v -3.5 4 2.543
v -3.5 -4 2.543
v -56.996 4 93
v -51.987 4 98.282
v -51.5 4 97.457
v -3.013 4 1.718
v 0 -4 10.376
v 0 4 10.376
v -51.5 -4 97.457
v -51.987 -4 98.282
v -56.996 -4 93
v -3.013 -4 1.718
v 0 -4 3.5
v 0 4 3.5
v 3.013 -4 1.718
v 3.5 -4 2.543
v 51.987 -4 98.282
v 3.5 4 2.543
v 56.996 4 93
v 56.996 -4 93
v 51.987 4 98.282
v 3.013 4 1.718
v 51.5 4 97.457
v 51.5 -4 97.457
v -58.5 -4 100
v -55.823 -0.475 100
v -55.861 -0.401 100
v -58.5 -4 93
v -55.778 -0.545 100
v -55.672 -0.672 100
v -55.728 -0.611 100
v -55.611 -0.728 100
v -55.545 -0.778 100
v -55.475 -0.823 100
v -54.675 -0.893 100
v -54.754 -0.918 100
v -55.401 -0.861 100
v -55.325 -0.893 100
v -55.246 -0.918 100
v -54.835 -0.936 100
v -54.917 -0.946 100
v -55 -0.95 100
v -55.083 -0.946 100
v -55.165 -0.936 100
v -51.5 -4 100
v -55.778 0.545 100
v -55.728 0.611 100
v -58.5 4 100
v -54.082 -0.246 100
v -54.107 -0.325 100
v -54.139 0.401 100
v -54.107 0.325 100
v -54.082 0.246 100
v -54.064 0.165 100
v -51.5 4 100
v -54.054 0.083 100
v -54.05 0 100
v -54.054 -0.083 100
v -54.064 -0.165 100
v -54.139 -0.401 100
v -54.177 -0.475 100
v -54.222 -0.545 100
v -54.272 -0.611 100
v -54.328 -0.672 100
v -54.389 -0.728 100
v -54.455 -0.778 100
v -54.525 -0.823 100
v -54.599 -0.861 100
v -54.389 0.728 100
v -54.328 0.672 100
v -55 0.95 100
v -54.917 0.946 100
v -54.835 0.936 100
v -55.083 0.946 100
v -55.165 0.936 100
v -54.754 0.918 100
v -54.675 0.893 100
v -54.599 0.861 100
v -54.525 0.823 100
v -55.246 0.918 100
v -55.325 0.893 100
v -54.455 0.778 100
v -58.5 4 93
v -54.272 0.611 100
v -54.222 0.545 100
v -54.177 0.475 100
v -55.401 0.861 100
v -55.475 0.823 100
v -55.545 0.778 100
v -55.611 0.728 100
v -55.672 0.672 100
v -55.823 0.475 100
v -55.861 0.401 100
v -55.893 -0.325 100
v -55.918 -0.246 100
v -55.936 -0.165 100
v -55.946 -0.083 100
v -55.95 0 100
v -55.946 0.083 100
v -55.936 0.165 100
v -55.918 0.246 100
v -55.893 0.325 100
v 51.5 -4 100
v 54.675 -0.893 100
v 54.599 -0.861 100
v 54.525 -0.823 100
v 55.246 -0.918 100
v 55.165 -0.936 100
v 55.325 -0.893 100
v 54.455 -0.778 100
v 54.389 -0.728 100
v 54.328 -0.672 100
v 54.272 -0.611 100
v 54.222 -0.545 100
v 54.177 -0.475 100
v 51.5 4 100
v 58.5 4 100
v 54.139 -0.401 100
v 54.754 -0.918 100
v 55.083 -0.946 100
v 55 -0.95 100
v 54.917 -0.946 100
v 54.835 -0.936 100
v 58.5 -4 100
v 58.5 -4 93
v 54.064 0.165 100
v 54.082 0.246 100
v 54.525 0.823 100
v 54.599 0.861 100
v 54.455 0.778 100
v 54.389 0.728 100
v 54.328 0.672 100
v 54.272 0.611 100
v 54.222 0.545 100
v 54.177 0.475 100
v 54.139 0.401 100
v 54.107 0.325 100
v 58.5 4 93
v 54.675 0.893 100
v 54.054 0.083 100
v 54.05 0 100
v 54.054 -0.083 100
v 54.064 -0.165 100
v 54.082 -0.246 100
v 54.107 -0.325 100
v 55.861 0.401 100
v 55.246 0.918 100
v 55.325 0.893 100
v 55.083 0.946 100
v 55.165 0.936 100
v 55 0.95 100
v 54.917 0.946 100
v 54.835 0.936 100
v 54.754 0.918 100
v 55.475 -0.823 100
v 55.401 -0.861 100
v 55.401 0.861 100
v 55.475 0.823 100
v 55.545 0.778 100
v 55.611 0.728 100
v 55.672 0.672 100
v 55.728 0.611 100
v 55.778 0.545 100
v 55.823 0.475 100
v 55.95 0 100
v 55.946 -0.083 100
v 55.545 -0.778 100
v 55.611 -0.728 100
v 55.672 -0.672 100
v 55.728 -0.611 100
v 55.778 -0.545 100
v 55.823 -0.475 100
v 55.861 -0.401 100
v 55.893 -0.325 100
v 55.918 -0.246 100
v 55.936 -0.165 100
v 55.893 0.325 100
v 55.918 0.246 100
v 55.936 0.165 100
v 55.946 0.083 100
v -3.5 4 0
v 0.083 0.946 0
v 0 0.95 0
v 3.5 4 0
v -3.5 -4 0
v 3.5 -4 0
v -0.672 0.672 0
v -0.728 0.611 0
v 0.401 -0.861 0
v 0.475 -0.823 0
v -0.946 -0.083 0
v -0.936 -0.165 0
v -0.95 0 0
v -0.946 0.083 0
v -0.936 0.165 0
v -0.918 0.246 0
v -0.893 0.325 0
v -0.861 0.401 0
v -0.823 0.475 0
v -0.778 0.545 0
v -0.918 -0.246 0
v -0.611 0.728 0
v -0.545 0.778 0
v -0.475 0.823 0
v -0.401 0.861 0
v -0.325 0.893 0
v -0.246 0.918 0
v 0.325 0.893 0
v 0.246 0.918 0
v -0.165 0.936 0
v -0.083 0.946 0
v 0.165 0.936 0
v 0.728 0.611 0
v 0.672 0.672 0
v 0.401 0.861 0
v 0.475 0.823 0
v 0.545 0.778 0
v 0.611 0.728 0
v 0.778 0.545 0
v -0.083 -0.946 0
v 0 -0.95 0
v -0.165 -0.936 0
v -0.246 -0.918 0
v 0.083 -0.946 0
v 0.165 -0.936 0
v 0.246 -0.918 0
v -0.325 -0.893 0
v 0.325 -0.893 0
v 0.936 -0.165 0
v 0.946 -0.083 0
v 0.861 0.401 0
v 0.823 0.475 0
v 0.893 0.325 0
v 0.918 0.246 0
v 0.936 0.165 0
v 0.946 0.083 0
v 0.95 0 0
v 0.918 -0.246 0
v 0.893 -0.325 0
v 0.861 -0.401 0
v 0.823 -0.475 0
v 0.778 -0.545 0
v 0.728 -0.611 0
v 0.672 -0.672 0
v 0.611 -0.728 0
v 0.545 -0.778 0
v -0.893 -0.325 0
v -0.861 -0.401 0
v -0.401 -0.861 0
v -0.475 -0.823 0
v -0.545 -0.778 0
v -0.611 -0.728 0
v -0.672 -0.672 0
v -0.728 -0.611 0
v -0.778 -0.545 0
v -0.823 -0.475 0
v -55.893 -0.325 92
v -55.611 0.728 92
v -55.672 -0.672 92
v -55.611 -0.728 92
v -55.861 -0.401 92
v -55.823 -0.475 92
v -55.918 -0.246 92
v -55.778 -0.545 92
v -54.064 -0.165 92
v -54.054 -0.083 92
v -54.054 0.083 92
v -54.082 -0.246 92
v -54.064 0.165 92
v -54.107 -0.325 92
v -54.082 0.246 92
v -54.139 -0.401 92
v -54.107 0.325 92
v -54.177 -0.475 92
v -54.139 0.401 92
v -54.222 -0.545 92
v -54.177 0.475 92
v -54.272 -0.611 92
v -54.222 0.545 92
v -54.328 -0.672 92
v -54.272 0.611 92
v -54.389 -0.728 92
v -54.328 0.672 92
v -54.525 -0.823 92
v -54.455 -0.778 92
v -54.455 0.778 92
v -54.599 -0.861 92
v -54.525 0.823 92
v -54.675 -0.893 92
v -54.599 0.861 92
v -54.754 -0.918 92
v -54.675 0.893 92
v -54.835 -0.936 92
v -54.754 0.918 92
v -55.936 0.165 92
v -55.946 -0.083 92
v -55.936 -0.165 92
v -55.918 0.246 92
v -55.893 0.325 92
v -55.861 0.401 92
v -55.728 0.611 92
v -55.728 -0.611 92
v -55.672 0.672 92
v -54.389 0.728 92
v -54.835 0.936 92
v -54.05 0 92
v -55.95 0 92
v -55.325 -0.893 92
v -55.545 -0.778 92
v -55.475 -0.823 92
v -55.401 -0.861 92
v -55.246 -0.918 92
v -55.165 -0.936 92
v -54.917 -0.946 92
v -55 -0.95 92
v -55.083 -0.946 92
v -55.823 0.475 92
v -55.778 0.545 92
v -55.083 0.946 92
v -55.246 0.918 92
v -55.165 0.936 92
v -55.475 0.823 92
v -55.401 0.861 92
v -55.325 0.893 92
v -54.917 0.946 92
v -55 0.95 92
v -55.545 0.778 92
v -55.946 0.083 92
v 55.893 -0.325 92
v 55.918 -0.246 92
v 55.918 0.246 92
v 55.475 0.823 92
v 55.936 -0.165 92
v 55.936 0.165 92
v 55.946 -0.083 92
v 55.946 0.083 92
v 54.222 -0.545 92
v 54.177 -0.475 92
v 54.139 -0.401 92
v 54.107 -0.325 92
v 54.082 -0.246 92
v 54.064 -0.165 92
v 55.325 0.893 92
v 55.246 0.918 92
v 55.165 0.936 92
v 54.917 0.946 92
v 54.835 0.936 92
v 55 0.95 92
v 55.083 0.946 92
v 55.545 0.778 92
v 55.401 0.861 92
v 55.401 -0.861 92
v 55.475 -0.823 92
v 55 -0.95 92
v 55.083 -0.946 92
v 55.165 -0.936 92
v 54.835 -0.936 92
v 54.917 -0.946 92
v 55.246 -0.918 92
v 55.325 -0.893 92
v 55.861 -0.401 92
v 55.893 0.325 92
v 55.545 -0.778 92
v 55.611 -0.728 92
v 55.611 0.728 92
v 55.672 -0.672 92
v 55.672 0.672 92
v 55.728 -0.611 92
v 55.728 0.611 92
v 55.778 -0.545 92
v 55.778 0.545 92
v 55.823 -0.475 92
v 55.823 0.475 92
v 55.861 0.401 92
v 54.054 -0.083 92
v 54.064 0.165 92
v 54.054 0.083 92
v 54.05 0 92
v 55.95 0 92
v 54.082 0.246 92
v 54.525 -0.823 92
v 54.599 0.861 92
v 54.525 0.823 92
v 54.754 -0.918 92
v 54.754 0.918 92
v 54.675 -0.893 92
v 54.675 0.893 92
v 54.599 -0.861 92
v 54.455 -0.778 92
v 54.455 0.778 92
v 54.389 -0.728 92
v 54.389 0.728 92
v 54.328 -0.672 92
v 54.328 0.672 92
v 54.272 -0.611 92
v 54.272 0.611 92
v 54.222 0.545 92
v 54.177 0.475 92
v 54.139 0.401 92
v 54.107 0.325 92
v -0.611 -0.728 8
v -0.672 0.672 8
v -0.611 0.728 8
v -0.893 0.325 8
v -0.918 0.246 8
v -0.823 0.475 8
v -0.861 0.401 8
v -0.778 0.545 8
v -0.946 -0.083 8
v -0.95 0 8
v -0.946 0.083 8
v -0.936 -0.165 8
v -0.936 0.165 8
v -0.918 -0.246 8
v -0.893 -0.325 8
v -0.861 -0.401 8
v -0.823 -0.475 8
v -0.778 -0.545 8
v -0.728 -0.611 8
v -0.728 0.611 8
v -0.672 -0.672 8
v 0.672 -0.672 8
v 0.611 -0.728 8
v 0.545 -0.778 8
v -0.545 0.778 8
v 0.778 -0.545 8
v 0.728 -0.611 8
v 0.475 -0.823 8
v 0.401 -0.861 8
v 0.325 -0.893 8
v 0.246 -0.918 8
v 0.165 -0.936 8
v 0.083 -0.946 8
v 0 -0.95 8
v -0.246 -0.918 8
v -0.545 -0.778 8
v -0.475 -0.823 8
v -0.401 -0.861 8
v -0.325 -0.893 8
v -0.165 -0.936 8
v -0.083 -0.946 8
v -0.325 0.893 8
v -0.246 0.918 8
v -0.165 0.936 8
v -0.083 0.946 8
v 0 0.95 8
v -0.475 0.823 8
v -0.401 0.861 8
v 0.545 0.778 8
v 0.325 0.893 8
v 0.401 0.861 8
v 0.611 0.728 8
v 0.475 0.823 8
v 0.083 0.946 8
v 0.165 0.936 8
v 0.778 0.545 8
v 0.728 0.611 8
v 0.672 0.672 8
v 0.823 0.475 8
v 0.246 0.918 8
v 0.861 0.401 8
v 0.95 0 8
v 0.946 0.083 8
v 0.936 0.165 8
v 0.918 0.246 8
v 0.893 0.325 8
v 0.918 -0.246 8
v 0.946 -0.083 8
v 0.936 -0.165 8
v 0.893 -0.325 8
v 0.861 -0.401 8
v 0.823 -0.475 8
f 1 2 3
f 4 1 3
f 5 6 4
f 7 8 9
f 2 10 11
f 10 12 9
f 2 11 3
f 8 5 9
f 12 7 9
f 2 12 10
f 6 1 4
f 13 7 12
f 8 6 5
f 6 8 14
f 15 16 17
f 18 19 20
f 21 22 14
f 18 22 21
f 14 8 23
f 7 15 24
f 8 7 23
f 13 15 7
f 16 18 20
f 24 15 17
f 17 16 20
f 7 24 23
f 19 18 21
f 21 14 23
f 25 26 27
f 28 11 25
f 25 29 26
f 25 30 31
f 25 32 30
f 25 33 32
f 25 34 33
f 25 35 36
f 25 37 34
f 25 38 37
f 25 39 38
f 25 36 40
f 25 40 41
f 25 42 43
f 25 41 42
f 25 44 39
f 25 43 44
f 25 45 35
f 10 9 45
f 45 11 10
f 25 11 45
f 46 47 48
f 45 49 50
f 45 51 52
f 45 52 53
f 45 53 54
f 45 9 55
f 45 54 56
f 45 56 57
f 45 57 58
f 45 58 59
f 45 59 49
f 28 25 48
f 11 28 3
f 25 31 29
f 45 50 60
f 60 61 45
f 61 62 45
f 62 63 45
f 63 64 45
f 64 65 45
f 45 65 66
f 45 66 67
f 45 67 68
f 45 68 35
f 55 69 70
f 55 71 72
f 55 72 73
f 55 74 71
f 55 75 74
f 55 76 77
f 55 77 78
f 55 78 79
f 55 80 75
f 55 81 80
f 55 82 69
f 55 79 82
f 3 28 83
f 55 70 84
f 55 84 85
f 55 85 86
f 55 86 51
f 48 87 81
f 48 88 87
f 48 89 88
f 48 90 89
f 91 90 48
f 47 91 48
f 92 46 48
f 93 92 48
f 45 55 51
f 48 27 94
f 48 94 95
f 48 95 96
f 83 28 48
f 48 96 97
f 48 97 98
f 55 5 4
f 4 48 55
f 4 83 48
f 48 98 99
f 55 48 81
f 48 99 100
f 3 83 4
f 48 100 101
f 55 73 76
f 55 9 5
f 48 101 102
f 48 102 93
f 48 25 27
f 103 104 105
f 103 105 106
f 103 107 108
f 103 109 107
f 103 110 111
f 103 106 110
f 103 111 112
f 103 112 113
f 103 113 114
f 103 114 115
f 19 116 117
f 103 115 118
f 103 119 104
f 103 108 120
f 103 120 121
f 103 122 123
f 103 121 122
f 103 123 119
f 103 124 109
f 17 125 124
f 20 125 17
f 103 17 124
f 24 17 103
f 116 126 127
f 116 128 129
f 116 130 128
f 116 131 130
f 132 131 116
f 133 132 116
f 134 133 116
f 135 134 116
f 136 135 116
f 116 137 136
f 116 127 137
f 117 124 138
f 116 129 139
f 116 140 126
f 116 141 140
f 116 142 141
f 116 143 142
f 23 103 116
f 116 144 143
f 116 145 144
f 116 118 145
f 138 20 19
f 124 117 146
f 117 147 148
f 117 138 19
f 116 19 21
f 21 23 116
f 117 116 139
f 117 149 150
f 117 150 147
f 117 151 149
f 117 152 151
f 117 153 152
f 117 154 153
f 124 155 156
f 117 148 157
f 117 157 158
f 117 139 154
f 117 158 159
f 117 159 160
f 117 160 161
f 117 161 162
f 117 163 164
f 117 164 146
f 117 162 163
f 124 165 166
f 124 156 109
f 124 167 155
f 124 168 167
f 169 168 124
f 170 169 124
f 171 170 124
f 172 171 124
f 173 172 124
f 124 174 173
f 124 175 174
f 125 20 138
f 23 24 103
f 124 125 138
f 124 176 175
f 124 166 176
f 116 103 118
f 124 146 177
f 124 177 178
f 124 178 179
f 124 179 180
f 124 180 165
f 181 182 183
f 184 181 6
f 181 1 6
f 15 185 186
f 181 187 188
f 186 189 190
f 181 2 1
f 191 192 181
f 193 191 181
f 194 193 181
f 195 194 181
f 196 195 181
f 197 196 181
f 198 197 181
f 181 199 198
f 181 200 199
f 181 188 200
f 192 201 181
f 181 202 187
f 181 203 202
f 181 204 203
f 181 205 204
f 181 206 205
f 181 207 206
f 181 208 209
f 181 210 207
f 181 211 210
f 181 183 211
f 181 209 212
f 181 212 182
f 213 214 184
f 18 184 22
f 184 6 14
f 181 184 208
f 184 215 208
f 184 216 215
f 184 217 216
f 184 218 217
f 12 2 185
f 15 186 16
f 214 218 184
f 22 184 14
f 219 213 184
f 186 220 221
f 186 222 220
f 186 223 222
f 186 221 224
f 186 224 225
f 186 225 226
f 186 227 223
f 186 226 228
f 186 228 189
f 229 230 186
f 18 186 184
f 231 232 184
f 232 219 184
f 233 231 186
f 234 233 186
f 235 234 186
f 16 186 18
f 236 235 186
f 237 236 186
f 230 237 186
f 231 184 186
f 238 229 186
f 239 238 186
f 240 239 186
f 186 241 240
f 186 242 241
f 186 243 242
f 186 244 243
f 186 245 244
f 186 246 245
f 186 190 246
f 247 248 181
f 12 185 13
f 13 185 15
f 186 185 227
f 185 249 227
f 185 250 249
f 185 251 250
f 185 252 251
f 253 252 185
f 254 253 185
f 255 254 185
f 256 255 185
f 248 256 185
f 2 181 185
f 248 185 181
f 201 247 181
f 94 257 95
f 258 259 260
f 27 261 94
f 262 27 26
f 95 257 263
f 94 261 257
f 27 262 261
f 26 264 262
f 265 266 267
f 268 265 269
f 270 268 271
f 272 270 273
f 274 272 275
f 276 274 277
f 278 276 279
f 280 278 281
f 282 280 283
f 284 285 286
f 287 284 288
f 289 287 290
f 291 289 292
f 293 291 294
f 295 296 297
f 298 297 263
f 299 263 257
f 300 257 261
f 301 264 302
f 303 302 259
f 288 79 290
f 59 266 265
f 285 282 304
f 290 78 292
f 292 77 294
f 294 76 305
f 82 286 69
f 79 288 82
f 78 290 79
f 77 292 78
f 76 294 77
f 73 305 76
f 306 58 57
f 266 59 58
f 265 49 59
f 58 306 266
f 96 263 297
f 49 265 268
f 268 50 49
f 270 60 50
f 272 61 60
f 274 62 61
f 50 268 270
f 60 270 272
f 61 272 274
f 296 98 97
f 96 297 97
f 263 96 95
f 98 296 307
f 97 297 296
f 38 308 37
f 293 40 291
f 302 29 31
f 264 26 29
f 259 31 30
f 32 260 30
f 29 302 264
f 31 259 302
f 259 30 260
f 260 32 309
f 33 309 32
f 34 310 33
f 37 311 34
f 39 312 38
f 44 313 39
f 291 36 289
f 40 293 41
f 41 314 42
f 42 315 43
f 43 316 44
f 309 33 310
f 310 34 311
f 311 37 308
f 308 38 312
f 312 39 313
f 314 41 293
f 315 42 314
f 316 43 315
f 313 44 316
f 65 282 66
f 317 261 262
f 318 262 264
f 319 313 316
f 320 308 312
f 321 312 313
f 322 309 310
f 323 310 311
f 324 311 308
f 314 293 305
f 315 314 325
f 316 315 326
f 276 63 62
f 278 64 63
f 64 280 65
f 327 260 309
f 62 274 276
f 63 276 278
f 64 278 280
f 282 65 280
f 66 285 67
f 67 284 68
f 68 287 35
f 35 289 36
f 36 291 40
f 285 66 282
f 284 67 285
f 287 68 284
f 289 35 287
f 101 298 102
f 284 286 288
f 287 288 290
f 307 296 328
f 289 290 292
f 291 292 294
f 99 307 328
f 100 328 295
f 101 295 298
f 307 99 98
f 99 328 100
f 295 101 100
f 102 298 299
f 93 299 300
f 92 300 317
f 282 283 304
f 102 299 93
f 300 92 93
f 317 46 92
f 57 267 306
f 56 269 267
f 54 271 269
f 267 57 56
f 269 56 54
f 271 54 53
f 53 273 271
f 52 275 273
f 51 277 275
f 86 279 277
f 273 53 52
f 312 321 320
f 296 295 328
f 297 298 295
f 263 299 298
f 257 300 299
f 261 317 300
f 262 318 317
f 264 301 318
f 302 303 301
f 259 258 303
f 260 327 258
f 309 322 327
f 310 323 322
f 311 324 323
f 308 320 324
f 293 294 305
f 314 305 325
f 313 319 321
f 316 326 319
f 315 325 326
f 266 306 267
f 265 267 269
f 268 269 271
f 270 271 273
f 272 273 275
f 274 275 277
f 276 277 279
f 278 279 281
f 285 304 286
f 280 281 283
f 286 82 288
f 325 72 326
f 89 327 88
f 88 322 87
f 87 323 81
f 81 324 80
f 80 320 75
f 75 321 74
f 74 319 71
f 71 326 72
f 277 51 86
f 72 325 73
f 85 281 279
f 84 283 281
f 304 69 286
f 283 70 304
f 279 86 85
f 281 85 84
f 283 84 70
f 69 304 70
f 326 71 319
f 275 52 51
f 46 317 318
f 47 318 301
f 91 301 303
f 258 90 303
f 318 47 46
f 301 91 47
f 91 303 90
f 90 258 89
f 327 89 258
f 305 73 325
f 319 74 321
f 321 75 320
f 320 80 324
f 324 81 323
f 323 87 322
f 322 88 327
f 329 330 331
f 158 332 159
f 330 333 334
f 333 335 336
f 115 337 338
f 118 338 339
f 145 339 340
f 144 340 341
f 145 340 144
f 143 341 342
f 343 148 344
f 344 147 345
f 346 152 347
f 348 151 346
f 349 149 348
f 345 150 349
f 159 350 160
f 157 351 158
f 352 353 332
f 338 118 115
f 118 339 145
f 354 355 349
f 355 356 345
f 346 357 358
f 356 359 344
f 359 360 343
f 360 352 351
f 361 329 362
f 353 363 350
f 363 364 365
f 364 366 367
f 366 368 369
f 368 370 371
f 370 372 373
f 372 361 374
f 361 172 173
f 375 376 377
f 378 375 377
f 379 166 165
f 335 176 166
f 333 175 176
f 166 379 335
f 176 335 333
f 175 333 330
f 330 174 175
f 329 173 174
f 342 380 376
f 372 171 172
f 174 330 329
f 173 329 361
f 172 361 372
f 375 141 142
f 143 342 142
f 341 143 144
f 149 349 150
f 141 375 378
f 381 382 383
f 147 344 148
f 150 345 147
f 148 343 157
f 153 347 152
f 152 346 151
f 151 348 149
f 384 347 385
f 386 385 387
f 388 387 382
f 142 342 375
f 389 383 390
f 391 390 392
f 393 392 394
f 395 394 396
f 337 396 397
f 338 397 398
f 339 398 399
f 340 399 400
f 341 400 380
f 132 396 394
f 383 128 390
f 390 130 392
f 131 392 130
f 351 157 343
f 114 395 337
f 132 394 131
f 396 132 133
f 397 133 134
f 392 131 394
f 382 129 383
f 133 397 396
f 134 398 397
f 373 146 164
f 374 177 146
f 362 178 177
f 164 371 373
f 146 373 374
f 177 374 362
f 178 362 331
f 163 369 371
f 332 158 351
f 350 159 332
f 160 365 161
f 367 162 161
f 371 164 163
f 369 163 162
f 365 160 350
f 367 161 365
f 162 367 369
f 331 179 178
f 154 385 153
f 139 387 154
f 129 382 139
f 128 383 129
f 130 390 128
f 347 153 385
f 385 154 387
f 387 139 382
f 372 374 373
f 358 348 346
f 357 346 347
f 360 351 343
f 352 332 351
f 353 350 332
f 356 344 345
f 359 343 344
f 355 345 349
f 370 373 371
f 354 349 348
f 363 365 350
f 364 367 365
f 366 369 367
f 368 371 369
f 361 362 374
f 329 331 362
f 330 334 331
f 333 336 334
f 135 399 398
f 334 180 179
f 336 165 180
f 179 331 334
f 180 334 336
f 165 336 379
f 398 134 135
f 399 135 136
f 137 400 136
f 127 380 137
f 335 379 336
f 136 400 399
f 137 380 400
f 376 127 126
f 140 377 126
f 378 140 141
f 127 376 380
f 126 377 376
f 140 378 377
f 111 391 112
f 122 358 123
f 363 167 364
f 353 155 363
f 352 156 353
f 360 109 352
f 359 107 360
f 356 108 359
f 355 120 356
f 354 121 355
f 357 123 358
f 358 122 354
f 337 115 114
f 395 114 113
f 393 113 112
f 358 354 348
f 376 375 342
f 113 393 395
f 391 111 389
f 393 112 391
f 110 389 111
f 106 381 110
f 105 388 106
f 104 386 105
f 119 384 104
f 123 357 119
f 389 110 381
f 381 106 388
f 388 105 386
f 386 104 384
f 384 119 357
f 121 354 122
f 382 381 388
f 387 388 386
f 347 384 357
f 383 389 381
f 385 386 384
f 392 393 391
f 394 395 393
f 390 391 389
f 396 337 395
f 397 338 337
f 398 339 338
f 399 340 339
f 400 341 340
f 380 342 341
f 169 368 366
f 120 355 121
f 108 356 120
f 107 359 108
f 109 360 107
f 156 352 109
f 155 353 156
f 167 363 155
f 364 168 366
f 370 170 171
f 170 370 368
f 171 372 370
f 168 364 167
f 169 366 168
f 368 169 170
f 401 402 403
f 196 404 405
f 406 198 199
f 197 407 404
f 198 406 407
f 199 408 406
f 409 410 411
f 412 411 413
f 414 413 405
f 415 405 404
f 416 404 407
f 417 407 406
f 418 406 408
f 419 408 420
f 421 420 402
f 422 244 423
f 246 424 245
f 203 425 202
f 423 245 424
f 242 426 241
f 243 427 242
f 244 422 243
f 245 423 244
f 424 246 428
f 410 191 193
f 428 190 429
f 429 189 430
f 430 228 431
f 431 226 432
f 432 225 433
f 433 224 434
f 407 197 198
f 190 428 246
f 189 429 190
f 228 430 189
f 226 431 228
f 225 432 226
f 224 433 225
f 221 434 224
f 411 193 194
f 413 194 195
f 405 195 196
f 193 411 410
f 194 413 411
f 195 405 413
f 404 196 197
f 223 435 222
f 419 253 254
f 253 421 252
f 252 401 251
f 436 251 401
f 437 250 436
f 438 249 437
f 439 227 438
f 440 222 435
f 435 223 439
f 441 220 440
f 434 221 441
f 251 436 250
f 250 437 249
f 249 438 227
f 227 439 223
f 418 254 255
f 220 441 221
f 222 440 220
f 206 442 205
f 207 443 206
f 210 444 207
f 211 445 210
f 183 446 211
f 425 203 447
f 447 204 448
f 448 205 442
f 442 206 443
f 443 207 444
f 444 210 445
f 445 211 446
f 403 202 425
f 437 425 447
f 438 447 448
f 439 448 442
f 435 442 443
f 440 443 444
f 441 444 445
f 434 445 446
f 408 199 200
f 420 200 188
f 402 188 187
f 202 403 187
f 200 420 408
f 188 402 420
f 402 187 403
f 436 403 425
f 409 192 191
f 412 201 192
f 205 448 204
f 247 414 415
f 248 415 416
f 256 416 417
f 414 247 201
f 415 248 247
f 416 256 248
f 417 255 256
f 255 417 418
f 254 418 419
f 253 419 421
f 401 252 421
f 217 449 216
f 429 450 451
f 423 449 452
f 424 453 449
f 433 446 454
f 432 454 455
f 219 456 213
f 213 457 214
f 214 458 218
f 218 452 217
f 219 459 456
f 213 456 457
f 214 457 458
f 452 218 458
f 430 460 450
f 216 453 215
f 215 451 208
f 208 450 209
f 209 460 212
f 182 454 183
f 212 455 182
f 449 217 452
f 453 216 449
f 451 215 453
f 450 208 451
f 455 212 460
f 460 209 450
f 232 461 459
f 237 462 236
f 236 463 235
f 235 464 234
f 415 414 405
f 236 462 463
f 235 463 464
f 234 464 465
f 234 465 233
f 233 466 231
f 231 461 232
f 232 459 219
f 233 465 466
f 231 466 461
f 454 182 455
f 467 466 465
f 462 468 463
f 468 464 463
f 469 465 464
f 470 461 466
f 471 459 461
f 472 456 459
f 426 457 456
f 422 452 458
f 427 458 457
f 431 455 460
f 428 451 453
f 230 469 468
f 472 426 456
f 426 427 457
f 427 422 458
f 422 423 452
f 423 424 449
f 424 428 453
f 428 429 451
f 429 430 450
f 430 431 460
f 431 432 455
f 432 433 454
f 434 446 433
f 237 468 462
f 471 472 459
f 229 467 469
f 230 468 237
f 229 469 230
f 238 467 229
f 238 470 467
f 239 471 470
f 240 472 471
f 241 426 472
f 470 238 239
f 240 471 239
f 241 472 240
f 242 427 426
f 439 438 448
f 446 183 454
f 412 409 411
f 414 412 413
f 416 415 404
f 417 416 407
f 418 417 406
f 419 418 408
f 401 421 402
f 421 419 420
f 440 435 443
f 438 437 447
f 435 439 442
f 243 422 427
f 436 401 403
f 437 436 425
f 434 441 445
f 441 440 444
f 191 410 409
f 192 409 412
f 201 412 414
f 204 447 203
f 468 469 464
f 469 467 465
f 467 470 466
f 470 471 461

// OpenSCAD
// OpenSCAD 2021.01 compatible
// Separate V-shaped stilt for carrier lugs.
//
// Revision:
// - Rectangular V legs.
// - Small top and foot stamps are restored, but each stamp is no larger than the leg cross-section.
// - Beam endpoints are placed inside the stamps, so the geometry has intentional overlap and no gaps.
// - Top screw areas remain flat.
// - No wide foot plate.
// - Added centered bottom screw hole from underside into the foot stamp.
// - Screw holes changed from clearance holes to tight pilot holes so 2 mm screws can bite into the printed plastic.

$fn = 72;

// -----------------------------
// Main requested values
// -----------------------------
top_hole_spacing      = 110.0;  // distance between the two lug screw points, center to center
stilt_height          = 100.0;  // ground to top mounting surface height
// Existing carrier lug holes are clearance holes. This stilt needs to catch the screws,
// so the holes in this part are pilot holes, matching the standoff style in the other files.
screw_clearance_ref_d  = 2.3;    // reference only: clearance through carrier lugs for 2 mm screws
screw_pilot_d          = 1.9;    // tight pilot for 2 mm screws to bite into printed plastic

// -----------------------------
// Rectangular stilt geometry
// -----------------------------
leg_xz_thickness      = 7.0;    // rectangular leg thickness in the X/Z side-view profile
leg_y_width           = 8.0;    // front/back width of the stilt

// The top and bottom stamps are intentionally not larger than the leg.
// They provide flat, gap-free endpoints without creating big print-unfriendly blocks.
stamp_x               = leg_xz_thickness;
stamp_y               = leg_y_width;
stamp_z               = leg_xz_thickness;

// Optional screw-head relief from the top side.
// Keep disabled when you want a completely flat screw-contact surface.
head_relief_enabled   = false;
head_relief_d         = 4.2;
head_relief_depth     = 1.4;

// Optional light rectangular crossbar near the top. Keep false for the clean V shape.
top_crossbar_enabled  = false;
top_crossbar_xz       = 5.0;
top_crossbar_y        = 6.0;

// Optional bottom screw hole for later attaching another part to the lower V point.
// This is centered in the foot stamp and also uses a tight pilot hole so a screw can bite later.
bottom_hole_enabled   = true;
bottom_hole_d         = screw_pilot_d;
bottom_hole_depth     = stamp_z + 1.0;  // cuts through the foot stamp with slight cleanup margin

// -----------------------------
// Derived values
// -----------------------------
left_x                = -top_hole_spacing / 2;
right_x               =  top_hole_spacing / 2;
foot_x                = 0;

// Top stamps sit directly below the lug, with the flat top surface at stilt_height.
top_stamp_bottom_z    = stilt_height - stamp_z;
top_stamp_center_z    = top_stamp_bottom_z + stamp_z / 2;

// Foot stamp sits on the ground. It is only the size of the leg section, not a plate.
foot_stamp_bottom_z   = 0;
foot_stamp_center_z   = stamp_z / 2;

// Put the beam centerline endpoints inside the stamps.
// This creates a true OpenSCAD union with positive overlap, preventing tiny gaps.
top_leg_anchor_z      = top_stamp_center_z;
bottom_leg_anchor_z   = foot_stamp_center_z;

// -----------------------------
// Primitive helpers
// -----------------------------
module box_centered(size_vec) {
    cube(size_vec, center = true);
}

module box_from_bottom(center_x, center_y, bottom_z, size_vec) {
    translate([center_x, center_y, bottom_z + size_vec[2] / 2])
        box_centered(size_vec);
}

function beam_poly_2d(p1, p2, t) =
    let(
        dx = p2[0] - p1[0],
        dz = p2[1] - p1[1],
        l  = sqrt(dx * dx + dz * dz),
        nx = -dz / l * t / 2,
        nz =  dx / l * t / 2
    )
    [
        [p1[0] + nx, p1[1] + nz],
        [p2[0] + nx, p2[1] + nz],
        [p2[0] - nx, p2[1] - nz],
        [p1[0] - nx, p1[1] - nz]
    ];

module xz_profile_extruded_y(profile_points, y_width) {
    // Builds an X/Z side-view polygon and extrudes it across Y.
    // rotate([90,0,0]) maps 2D Y to model Z and extrusion Z to model Y.
    rotate([90, 0, 0])
        linear_extrude(height = y_width, center = true, convexity = 4)
            polygon(points = profile_points);
}

// -----------------------------
// Main geometry modules
// -----------------------------
module end_stamp(xc, bottom_z) {
    // Same X/Y/Z envelope as the rectangular leg section.
    // This is the small, printable, fully-connected endpoint requested.
    box_from_bottom(xc, 0, bottom_z, [stamp_x, stamp_y, stamp_z]);
}

module top_mount_hole(xc) {
    translate([xc, 0, top_stamp_bottom_z - 1])
        cylinder(h = stamp_z + 2, d = screw_pilot_d);

    if (head_relief_enabled) {
        translate([xc, 0, stilt_height - head_relief_depth])
            cylinder(h = head_relief_depth + 0.02, d = head_relief_d);
    }
}

module bottom_mount_hole() {
    if (bottom_hole_enabled) {
        // Hole enters from the bottom side and is vertical in Z.
        // It is intentionally a pilot hole, not a clearance hole, so the screw can bite.
        translate([foot_x, 0, -0.5])
            cylinder(h = bottom_hole_depth + 0.5, d = bottom_hole_d);
    }
}

module rectangular_leg(x_top) {
    xz_profile_extruded_y(
        beam_poly_2d(
            [x_top, top_leg_anchor_z],
            [foot_x, bottom_leg_anchor_z],
            leg_xz_thickness
        ),
        leg_y_width
    );
}

module v_legs() {
    rectangular_leg(left_x);
    rectangular_leg(right_x);

    if (top_crossbar_enabled)
        xz_profile_extruded_y(
            beam_poly_2d(
                [left_x, top_leg_anchor_z],
                [right_x, top_leg_anchor_z],
                top_crossbar_xz
            ),
            top_crossbar_y
        );
}

module v_stilt_body_raw() {
    union() {
        // Stamps first, then legs. Endpoints overlap inside the stamps.
        end_stamp(left_x,  top_stamp_bottom_z);
        end_stamp(right_x, top_stamp_bottom_z);
        end_stamp(foot_x,  foot_stamp_bottom_z);
        v_legs();
    }
}

module screw_cutouts() {
    top_mount_hole(left_x);
    top_mount_hole(right_x);
    bottom_mount_hole();
}

module v_stilt() {
    difference() {
        v_stilt_body_raw();
        screw_cutouts();
    }
}

v_stilt();
